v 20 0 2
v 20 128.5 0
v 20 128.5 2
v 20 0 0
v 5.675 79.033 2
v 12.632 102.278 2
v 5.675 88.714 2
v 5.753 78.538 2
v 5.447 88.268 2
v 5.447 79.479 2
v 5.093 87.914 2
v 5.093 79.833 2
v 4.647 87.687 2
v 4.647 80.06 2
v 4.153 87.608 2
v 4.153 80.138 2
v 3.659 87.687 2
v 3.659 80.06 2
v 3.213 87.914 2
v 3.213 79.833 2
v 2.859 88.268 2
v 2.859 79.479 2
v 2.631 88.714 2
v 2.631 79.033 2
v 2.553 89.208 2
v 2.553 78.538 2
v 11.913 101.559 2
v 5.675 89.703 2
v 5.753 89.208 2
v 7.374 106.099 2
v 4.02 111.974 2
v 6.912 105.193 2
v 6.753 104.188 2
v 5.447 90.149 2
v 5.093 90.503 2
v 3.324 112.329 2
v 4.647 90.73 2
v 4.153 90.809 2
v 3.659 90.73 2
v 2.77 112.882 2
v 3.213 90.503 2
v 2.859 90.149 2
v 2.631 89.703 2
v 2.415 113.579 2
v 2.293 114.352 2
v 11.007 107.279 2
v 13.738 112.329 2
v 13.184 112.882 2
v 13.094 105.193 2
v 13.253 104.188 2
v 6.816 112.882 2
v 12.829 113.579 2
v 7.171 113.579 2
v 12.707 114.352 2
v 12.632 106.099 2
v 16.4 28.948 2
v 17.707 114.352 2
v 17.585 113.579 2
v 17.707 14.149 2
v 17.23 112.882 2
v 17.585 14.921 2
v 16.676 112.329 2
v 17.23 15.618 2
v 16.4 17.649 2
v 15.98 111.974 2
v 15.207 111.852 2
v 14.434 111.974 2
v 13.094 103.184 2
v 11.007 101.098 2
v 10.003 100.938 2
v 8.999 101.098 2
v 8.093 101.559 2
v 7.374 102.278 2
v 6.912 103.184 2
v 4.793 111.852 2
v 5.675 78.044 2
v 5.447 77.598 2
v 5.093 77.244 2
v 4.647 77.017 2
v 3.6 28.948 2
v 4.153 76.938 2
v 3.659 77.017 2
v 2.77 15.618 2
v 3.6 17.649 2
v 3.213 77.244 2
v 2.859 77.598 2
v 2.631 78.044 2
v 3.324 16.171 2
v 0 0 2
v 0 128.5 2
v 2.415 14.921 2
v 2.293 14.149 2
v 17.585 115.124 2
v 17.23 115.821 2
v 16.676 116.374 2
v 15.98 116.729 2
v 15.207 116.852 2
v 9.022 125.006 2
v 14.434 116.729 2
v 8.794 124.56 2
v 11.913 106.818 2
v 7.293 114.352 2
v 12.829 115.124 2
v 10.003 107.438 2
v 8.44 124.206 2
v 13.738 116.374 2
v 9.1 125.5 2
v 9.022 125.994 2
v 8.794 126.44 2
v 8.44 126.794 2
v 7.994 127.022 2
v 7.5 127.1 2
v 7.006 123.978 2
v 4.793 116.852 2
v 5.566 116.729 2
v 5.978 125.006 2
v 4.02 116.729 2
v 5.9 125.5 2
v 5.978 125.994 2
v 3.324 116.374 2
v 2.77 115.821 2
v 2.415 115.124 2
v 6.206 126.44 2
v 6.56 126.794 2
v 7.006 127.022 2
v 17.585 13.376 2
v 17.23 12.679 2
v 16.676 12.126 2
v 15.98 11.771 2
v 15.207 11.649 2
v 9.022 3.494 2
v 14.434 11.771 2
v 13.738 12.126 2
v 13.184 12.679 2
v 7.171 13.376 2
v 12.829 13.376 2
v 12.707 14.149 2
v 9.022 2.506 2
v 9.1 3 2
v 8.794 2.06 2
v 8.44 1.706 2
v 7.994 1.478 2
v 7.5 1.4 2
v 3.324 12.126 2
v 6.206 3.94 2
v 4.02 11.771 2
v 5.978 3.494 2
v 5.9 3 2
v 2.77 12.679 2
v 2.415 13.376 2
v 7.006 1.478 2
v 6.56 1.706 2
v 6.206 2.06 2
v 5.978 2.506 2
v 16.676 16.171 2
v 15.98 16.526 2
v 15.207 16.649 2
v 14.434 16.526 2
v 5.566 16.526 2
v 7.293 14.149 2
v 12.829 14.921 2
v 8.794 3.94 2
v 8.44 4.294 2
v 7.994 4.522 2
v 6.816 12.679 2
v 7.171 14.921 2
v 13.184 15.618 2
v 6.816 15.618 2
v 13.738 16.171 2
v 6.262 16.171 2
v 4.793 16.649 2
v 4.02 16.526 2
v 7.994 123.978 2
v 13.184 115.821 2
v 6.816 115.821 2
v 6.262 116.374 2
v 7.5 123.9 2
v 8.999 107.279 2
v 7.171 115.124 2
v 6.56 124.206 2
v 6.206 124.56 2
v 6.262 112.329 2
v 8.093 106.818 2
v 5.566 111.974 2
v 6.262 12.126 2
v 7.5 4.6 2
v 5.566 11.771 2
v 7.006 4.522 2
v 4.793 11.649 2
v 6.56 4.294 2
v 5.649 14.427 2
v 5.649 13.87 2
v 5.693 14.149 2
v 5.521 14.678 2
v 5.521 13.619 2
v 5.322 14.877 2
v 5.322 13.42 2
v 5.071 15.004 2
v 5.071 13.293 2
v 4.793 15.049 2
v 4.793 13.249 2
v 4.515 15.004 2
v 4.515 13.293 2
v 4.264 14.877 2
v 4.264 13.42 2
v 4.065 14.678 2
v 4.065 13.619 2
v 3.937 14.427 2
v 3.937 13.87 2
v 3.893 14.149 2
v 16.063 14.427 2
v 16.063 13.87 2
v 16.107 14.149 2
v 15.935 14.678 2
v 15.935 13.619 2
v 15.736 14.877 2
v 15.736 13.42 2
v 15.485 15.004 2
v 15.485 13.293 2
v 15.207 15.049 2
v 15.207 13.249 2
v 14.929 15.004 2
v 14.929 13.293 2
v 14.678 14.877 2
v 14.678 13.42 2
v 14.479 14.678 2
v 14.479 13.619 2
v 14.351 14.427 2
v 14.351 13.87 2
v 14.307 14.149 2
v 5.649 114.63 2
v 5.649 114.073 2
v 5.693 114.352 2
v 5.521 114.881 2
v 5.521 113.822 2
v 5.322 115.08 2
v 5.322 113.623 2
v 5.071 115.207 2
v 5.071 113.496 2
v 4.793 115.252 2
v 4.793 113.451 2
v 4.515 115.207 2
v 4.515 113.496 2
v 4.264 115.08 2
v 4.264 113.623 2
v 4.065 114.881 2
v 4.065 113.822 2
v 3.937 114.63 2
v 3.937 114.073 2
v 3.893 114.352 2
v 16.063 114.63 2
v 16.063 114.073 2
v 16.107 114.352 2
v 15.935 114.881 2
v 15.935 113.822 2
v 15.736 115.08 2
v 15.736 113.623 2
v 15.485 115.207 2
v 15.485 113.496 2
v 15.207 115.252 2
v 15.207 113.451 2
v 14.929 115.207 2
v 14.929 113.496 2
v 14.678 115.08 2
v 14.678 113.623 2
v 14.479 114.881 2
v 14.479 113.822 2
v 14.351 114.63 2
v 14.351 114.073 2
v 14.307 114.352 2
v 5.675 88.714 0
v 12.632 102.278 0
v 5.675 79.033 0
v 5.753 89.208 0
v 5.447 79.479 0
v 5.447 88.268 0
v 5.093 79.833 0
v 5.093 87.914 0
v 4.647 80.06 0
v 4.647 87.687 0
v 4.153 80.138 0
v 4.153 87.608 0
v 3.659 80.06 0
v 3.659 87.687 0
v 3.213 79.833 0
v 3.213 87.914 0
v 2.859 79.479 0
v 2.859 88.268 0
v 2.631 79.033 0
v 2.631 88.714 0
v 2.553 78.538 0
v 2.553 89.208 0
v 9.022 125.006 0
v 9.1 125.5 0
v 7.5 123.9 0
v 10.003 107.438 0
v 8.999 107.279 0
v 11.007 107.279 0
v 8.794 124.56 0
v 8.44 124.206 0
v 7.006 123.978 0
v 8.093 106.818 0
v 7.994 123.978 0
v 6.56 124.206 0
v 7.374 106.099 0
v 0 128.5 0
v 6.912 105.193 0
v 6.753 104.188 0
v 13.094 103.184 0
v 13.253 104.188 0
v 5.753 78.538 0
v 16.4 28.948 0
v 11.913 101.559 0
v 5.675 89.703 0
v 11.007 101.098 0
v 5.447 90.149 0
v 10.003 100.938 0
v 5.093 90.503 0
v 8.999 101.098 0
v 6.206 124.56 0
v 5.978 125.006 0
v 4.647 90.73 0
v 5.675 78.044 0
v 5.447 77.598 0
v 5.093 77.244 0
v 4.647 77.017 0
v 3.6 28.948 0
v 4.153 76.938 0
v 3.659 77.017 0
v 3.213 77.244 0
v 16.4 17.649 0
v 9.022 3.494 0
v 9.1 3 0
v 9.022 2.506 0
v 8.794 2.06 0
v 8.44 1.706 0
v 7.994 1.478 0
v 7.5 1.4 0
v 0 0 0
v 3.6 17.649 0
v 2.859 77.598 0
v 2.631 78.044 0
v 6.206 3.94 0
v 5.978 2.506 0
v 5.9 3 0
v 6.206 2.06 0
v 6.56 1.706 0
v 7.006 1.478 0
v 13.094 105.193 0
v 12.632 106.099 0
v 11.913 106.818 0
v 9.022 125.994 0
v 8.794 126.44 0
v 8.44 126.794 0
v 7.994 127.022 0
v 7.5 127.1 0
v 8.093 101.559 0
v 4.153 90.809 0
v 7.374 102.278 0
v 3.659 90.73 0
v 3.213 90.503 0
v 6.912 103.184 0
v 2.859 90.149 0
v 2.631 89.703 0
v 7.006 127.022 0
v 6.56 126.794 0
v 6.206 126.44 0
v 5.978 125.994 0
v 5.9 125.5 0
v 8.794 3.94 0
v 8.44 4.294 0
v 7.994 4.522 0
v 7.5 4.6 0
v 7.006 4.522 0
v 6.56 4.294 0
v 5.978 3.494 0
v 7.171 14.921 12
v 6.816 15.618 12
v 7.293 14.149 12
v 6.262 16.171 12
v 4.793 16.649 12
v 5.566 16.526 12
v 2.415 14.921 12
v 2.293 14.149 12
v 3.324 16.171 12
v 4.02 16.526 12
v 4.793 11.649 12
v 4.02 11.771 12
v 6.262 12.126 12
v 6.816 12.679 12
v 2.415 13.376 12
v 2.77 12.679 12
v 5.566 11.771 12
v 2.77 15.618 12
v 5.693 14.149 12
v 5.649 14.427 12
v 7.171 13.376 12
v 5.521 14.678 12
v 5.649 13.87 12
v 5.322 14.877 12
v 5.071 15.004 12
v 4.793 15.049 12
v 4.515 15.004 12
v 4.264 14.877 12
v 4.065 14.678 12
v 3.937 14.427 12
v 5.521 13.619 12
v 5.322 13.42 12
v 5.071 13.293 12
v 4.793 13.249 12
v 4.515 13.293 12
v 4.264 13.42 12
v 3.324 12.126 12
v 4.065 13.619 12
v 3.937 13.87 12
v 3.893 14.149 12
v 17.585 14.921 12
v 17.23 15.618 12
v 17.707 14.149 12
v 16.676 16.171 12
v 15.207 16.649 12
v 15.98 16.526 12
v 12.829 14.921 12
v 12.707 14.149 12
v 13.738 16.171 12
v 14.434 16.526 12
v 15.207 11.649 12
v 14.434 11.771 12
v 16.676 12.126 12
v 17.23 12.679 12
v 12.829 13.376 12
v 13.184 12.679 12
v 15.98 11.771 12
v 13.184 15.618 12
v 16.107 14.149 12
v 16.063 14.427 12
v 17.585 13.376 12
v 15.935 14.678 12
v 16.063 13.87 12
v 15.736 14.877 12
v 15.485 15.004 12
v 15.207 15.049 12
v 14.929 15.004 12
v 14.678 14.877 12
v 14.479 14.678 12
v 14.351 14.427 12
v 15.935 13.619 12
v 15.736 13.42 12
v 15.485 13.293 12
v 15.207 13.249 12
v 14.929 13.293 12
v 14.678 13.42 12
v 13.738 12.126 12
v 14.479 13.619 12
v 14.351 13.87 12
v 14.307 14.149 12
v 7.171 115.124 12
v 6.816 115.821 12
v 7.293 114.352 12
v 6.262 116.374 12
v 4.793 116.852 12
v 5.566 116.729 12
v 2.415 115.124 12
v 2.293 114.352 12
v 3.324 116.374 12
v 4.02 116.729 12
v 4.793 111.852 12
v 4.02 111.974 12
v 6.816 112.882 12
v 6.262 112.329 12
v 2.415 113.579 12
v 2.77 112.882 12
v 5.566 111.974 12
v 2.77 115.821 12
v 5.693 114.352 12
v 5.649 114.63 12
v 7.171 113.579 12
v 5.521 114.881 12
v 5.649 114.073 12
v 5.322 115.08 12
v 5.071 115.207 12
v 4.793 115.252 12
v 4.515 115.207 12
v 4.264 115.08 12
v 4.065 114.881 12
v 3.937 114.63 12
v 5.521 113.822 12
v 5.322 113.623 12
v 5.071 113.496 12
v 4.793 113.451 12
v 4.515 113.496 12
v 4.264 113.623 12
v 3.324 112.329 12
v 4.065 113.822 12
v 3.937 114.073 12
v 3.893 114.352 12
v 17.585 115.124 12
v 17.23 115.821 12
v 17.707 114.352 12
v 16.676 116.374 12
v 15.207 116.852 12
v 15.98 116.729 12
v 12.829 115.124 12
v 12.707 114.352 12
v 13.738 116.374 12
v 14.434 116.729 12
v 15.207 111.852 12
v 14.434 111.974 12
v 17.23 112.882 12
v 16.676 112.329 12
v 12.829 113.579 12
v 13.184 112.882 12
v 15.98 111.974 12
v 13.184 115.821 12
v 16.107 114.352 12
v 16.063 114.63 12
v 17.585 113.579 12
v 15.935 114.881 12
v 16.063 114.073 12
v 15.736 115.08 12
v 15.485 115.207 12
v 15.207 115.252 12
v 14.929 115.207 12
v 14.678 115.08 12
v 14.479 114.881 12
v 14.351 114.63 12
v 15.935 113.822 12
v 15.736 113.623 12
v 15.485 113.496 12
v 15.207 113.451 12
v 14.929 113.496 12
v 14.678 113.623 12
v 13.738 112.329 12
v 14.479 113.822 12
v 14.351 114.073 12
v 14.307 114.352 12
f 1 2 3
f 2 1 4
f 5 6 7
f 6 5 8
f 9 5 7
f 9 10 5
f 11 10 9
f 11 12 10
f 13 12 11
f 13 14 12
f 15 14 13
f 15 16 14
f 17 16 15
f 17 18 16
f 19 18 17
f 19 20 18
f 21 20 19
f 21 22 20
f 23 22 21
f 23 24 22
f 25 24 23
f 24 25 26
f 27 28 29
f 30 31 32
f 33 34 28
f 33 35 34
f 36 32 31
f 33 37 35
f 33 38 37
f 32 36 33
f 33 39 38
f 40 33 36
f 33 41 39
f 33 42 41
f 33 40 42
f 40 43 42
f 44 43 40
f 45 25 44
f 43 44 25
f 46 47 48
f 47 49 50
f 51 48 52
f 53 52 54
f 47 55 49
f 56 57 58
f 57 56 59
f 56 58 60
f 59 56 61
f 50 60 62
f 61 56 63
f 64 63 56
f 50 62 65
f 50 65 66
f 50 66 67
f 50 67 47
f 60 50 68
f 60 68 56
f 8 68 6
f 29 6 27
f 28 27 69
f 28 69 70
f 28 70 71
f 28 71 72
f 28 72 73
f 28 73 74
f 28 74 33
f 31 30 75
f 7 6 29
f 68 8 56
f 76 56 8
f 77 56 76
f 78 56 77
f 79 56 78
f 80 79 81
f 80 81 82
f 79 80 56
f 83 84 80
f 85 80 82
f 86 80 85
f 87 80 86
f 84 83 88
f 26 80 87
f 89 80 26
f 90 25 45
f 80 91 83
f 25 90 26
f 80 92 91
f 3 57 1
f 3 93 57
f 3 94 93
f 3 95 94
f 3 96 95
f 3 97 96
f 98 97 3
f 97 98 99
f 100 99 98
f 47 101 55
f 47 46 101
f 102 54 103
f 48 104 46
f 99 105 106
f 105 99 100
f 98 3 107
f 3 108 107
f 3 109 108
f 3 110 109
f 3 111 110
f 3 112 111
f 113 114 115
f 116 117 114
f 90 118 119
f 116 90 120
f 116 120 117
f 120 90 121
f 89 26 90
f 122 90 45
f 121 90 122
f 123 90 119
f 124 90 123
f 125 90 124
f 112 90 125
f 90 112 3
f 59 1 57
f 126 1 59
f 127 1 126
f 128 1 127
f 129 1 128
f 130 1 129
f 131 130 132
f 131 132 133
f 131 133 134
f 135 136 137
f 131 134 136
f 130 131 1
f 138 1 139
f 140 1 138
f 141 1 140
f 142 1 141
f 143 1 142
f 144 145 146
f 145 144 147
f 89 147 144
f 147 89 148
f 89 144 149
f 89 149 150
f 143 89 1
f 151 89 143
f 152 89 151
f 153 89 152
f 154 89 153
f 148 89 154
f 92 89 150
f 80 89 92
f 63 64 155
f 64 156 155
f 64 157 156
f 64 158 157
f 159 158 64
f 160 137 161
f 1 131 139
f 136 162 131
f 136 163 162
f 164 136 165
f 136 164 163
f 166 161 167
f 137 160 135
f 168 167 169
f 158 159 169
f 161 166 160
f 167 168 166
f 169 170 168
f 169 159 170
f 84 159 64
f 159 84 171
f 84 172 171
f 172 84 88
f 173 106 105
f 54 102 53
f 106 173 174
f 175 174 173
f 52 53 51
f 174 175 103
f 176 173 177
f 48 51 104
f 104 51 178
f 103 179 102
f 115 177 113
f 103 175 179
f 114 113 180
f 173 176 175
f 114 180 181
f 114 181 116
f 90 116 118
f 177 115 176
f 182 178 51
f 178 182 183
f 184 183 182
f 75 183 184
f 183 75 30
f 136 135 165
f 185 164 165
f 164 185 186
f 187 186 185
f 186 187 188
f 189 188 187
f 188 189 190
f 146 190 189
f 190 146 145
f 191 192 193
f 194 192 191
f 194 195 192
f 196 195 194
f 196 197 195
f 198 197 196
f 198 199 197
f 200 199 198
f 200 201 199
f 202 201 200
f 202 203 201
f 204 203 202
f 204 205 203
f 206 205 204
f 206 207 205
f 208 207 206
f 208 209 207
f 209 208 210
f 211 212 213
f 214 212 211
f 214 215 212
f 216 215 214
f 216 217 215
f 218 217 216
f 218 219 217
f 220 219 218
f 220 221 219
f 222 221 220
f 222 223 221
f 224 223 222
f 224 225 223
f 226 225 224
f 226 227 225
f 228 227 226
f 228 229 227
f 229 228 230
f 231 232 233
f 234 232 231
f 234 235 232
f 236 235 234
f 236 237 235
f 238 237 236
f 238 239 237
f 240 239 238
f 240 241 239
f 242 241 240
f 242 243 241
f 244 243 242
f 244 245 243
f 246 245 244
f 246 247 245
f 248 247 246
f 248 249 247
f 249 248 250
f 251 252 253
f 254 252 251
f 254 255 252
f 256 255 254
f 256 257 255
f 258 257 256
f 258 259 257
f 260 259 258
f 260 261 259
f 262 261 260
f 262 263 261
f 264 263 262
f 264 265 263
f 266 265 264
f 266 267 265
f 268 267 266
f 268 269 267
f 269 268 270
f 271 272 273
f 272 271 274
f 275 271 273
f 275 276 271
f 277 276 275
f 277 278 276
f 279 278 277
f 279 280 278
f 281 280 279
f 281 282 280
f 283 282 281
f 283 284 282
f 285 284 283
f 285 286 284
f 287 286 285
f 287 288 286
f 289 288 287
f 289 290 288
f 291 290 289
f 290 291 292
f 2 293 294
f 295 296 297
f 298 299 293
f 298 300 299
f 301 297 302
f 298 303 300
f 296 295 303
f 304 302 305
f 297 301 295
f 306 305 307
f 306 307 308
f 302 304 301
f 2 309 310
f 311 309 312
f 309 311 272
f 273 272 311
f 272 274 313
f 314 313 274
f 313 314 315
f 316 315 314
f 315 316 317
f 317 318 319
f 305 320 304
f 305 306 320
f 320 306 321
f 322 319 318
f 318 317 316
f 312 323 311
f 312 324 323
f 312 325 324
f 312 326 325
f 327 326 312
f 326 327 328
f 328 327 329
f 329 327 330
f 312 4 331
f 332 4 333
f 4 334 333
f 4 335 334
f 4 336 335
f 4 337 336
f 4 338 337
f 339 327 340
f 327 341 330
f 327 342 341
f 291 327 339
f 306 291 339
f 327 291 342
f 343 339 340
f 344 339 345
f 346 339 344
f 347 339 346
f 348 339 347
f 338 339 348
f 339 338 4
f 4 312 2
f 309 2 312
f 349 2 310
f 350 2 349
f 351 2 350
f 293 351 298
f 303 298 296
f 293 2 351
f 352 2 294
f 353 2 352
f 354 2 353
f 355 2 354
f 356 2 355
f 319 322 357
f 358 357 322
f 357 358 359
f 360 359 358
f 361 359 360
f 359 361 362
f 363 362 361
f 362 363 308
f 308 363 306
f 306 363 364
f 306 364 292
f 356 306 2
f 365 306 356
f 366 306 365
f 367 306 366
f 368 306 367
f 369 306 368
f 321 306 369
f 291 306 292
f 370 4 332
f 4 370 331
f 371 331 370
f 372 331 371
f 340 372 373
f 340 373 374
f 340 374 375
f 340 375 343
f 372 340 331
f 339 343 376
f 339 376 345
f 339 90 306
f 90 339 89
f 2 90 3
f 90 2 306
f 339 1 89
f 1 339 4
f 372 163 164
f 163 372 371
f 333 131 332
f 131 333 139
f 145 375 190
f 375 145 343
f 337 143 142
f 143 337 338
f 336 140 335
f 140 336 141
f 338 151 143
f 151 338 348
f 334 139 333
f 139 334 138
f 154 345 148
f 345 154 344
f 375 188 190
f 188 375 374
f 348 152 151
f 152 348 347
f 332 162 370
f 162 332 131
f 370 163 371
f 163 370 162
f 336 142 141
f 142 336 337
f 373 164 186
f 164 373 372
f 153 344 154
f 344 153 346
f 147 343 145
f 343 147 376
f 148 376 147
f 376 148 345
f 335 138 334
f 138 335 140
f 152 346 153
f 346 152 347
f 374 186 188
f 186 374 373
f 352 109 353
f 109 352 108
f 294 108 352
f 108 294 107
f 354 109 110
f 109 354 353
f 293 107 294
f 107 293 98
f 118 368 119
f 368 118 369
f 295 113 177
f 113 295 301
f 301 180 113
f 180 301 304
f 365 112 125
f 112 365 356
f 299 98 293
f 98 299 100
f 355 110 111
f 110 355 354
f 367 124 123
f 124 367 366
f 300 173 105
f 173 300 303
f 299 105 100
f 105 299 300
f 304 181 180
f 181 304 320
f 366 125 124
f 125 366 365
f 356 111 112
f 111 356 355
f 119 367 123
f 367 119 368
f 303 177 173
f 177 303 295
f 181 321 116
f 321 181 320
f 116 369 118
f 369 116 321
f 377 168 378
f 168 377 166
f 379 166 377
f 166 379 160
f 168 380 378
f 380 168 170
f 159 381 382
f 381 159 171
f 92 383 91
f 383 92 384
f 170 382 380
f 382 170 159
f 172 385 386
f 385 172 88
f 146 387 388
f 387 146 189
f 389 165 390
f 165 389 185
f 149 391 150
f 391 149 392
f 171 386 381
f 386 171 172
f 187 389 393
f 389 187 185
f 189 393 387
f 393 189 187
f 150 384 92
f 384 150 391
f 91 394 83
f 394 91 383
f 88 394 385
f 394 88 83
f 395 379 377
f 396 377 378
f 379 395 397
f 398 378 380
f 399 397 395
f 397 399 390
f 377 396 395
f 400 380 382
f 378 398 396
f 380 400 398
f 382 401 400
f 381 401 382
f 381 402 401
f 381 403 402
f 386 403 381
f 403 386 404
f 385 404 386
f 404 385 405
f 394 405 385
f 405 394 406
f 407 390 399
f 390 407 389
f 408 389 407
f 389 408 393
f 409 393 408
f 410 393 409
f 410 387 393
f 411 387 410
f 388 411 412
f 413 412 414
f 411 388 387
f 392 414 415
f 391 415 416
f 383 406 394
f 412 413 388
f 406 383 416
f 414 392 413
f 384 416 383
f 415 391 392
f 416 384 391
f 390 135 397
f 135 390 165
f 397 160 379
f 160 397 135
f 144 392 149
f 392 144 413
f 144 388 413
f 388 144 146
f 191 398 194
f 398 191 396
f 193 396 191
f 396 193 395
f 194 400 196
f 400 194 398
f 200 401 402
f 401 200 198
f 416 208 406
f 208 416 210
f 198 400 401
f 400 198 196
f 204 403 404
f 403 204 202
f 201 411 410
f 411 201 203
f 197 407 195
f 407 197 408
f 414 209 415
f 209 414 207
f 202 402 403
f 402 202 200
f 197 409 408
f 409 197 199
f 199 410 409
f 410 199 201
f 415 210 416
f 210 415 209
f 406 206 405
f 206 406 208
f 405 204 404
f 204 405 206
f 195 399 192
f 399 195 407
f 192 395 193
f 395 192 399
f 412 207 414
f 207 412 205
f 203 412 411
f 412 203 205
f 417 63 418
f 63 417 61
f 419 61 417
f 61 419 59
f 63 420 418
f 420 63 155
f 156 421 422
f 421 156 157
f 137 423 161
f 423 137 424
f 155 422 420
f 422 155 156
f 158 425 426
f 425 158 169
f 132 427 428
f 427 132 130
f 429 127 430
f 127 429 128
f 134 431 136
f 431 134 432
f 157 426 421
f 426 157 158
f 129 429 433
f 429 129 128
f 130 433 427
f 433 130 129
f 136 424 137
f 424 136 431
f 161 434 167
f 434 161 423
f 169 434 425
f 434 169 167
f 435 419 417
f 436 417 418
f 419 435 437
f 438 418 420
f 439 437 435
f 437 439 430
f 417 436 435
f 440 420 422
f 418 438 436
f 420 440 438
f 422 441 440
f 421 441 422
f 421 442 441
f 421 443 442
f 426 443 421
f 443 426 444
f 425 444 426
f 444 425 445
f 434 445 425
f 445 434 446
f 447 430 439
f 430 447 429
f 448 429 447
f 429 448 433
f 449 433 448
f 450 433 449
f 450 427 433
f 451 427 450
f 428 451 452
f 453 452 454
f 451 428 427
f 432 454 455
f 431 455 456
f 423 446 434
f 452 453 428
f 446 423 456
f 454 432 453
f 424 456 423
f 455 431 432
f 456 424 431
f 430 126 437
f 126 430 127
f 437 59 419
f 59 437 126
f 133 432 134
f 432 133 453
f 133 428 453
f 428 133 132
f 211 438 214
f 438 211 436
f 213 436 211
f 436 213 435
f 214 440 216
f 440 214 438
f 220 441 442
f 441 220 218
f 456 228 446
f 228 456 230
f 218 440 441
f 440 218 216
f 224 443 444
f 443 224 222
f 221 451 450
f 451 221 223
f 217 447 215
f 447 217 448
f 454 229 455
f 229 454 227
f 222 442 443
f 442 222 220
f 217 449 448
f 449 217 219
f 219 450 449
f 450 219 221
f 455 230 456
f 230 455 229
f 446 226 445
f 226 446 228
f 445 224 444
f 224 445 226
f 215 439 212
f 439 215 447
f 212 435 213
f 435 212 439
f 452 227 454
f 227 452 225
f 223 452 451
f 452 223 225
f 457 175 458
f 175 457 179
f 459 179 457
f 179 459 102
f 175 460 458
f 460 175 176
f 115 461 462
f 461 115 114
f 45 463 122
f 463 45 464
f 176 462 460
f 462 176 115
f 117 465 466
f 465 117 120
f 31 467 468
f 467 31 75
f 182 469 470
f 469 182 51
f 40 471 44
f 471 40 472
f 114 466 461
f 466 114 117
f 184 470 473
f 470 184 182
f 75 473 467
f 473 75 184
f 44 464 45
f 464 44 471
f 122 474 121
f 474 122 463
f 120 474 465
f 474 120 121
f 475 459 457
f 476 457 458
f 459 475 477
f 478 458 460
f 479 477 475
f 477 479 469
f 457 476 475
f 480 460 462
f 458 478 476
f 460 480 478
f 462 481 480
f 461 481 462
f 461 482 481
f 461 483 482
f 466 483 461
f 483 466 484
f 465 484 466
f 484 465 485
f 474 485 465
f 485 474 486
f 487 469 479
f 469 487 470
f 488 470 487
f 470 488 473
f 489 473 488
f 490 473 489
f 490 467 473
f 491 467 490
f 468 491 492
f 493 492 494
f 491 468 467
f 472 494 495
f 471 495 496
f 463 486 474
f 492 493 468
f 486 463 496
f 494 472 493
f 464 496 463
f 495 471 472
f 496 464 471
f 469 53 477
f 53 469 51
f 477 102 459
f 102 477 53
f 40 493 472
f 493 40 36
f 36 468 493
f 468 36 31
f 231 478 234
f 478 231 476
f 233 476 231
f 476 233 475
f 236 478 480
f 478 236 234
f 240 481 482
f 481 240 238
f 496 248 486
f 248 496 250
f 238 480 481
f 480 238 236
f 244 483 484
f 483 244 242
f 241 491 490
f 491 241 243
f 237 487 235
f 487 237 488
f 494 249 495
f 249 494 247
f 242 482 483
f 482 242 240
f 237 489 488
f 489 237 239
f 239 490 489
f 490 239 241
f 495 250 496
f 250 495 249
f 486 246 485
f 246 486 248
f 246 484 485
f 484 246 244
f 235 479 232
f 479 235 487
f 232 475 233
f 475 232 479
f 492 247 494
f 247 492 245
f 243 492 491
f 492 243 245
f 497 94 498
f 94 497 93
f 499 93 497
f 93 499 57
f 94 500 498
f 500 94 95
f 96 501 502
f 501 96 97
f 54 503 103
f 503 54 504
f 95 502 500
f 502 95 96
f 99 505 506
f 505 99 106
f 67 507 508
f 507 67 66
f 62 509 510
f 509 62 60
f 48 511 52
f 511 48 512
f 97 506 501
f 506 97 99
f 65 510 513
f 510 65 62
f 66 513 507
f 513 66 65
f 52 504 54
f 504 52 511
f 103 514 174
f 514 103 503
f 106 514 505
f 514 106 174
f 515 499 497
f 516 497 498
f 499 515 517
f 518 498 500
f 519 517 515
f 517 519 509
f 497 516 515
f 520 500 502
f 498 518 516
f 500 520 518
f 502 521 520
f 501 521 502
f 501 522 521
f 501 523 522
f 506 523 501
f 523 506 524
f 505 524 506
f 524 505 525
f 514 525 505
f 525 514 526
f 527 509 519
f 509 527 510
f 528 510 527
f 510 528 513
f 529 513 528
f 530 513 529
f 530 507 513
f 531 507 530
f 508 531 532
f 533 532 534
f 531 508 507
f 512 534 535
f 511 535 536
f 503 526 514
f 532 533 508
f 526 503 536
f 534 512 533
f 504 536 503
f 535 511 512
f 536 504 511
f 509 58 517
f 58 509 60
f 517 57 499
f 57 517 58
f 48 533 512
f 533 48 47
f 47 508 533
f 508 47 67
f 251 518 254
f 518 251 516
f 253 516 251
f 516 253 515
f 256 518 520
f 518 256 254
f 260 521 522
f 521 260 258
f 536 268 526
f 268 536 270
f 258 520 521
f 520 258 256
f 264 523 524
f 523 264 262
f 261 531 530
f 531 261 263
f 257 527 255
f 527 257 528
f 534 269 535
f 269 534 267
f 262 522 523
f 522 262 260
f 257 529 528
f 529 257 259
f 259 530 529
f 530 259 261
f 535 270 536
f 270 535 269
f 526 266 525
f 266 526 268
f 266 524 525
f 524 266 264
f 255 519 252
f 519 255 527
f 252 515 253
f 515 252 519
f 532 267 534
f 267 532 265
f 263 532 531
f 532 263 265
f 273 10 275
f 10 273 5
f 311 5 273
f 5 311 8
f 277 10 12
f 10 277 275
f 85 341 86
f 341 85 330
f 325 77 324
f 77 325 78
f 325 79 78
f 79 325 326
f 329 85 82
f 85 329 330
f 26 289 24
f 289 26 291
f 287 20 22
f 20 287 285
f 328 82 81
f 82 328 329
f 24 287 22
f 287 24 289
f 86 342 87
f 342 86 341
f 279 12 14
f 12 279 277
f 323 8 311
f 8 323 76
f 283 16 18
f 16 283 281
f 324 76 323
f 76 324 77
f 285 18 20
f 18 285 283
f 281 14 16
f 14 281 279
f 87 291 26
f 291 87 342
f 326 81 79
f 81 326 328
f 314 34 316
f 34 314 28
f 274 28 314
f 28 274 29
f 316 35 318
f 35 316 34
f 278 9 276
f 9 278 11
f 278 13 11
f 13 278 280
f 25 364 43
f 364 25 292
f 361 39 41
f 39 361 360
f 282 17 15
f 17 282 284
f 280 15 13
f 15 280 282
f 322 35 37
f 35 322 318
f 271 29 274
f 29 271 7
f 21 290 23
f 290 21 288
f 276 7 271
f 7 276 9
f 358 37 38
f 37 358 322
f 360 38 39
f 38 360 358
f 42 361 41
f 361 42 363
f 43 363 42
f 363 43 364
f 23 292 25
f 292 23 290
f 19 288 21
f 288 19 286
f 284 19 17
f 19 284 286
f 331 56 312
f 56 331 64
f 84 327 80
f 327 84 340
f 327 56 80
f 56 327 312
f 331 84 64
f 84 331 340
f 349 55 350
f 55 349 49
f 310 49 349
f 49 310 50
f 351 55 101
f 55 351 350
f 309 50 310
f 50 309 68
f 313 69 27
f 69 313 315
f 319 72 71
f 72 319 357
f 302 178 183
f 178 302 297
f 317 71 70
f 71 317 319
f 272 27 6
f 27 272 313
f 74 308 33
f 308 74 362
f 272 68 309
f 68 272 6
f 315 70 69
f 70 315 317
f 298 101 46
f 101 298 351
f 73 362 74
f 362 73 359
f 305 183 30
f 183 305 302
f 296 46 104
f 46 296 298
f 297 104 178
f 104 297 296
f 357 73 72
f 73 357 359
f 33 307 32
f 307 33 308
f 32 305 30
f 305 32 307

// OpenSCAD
// file: ../../../share/openscad/eurorack-panel.scad
// this is based on A100 spec from doepfer https://doepfer.de/a100_man/a100m_e.htm

eurorack_panel_height = function() 128.5;
eurorack_panel_width = function(width_in_hp) width_in_hp * 5;

module eurorack_panel(width_in_hp, thickness=2) {
    difference() {
        cube([eurorack_panel_width(width_in_hp), eurorack_panel_height(), thickness]);

        translate([7.5, 3, 0])
            cylinder(thickness, d=3.2, $fn=20);
        translate([7.5, eurorack_panel_height() - 3, 0])
            cylinder(thickness, d=3.2, $fn=20);

        if (width_in_hp >= 8) {
            translate([eurorack_panel_width(width_in_hp) - 7.5, 3, 0])
                cylinder(thickness, d=3.2, $fn=20);
            translate([eurorack_panel_width(width_in_hp) - 7.5, eurorack_panel_height() - 3, 0])
                cylinder(thickness, d=3.2, $fn=20);
        }
    }
}
// main file
include <../../../share/openscad/eurorack-panel.scad>

width_in_hp = 4;
thickness = 2;

pcb_width = 17.526;
pcb_height = 107.315;
pcb_hole_padding = 3.556;
pcb_hole_distance_x = pcb_width - (2 * pcb_hole_padding);
pcb_hole_distance_y = pcb_height - (2 * pcb_hole_padding);

screw0_x = ((eurorack_panel_width(width_in_hp) - pcb_width) / 2) + pcb_hole_padding;
screw0_y = ((eurorack_panel_height() - pcb_height) / 2) + pcb_hole_padding;

usb_width = 12.8;
usb_height = 11.3;
usb_distance_x = ((pcb_width - usb_width) / 2) - pcb_hole_padding;
usb_distance_y = 3.5;

led1_distance_x = -0.64;
led1_distance_y = 64.39;
led_d = 3.2;
led_spacing_y = 10.67;

jack_distance_x = 5.21;
jack_distance_y = 90.04;
jack_d = 6.5;


module pcb_screw_base() {
    difference() {
        cylinder(10, d=5, $fn=20);
        cylinder(10, d=1.8, $fn=20);
    }
}


difference() {
    union() {
        eurorack_panel(width_in_hp, thickness);

        translate([screw0_x, screw0_y, thickness]) {
            pcb_screw_base();
            translate([pcb_hole_distance_x, 0, 0])
                pcb_screw_base();
            translate([0, pcb_hole_distance_y, 0]) {
                pcb_screw_base();
                translate([pcb_hole_distance_x, 0, 0])
                    pcb_screw_base();
            }
        }
    }

    translate([screw0_x, screw0_y, 0]) {
        translate([usb_distance_x, usb_distance_y, 0])
            cube([usb_width, usb_height, thickness]);

        translate([led1_distance_x, led1_distance_y, 0]) {
            cylinder(thickness, d=led_d, $fn=20);
            translate([0, led_spacing_y, 0])
                cylinder(thickness, d=led_d, $fn=20);
        }

        translate([jack_distance_x, jack_distance_y, 0])
            cylinder(thickness, d=jack_d, $fn=20);
    }
}
